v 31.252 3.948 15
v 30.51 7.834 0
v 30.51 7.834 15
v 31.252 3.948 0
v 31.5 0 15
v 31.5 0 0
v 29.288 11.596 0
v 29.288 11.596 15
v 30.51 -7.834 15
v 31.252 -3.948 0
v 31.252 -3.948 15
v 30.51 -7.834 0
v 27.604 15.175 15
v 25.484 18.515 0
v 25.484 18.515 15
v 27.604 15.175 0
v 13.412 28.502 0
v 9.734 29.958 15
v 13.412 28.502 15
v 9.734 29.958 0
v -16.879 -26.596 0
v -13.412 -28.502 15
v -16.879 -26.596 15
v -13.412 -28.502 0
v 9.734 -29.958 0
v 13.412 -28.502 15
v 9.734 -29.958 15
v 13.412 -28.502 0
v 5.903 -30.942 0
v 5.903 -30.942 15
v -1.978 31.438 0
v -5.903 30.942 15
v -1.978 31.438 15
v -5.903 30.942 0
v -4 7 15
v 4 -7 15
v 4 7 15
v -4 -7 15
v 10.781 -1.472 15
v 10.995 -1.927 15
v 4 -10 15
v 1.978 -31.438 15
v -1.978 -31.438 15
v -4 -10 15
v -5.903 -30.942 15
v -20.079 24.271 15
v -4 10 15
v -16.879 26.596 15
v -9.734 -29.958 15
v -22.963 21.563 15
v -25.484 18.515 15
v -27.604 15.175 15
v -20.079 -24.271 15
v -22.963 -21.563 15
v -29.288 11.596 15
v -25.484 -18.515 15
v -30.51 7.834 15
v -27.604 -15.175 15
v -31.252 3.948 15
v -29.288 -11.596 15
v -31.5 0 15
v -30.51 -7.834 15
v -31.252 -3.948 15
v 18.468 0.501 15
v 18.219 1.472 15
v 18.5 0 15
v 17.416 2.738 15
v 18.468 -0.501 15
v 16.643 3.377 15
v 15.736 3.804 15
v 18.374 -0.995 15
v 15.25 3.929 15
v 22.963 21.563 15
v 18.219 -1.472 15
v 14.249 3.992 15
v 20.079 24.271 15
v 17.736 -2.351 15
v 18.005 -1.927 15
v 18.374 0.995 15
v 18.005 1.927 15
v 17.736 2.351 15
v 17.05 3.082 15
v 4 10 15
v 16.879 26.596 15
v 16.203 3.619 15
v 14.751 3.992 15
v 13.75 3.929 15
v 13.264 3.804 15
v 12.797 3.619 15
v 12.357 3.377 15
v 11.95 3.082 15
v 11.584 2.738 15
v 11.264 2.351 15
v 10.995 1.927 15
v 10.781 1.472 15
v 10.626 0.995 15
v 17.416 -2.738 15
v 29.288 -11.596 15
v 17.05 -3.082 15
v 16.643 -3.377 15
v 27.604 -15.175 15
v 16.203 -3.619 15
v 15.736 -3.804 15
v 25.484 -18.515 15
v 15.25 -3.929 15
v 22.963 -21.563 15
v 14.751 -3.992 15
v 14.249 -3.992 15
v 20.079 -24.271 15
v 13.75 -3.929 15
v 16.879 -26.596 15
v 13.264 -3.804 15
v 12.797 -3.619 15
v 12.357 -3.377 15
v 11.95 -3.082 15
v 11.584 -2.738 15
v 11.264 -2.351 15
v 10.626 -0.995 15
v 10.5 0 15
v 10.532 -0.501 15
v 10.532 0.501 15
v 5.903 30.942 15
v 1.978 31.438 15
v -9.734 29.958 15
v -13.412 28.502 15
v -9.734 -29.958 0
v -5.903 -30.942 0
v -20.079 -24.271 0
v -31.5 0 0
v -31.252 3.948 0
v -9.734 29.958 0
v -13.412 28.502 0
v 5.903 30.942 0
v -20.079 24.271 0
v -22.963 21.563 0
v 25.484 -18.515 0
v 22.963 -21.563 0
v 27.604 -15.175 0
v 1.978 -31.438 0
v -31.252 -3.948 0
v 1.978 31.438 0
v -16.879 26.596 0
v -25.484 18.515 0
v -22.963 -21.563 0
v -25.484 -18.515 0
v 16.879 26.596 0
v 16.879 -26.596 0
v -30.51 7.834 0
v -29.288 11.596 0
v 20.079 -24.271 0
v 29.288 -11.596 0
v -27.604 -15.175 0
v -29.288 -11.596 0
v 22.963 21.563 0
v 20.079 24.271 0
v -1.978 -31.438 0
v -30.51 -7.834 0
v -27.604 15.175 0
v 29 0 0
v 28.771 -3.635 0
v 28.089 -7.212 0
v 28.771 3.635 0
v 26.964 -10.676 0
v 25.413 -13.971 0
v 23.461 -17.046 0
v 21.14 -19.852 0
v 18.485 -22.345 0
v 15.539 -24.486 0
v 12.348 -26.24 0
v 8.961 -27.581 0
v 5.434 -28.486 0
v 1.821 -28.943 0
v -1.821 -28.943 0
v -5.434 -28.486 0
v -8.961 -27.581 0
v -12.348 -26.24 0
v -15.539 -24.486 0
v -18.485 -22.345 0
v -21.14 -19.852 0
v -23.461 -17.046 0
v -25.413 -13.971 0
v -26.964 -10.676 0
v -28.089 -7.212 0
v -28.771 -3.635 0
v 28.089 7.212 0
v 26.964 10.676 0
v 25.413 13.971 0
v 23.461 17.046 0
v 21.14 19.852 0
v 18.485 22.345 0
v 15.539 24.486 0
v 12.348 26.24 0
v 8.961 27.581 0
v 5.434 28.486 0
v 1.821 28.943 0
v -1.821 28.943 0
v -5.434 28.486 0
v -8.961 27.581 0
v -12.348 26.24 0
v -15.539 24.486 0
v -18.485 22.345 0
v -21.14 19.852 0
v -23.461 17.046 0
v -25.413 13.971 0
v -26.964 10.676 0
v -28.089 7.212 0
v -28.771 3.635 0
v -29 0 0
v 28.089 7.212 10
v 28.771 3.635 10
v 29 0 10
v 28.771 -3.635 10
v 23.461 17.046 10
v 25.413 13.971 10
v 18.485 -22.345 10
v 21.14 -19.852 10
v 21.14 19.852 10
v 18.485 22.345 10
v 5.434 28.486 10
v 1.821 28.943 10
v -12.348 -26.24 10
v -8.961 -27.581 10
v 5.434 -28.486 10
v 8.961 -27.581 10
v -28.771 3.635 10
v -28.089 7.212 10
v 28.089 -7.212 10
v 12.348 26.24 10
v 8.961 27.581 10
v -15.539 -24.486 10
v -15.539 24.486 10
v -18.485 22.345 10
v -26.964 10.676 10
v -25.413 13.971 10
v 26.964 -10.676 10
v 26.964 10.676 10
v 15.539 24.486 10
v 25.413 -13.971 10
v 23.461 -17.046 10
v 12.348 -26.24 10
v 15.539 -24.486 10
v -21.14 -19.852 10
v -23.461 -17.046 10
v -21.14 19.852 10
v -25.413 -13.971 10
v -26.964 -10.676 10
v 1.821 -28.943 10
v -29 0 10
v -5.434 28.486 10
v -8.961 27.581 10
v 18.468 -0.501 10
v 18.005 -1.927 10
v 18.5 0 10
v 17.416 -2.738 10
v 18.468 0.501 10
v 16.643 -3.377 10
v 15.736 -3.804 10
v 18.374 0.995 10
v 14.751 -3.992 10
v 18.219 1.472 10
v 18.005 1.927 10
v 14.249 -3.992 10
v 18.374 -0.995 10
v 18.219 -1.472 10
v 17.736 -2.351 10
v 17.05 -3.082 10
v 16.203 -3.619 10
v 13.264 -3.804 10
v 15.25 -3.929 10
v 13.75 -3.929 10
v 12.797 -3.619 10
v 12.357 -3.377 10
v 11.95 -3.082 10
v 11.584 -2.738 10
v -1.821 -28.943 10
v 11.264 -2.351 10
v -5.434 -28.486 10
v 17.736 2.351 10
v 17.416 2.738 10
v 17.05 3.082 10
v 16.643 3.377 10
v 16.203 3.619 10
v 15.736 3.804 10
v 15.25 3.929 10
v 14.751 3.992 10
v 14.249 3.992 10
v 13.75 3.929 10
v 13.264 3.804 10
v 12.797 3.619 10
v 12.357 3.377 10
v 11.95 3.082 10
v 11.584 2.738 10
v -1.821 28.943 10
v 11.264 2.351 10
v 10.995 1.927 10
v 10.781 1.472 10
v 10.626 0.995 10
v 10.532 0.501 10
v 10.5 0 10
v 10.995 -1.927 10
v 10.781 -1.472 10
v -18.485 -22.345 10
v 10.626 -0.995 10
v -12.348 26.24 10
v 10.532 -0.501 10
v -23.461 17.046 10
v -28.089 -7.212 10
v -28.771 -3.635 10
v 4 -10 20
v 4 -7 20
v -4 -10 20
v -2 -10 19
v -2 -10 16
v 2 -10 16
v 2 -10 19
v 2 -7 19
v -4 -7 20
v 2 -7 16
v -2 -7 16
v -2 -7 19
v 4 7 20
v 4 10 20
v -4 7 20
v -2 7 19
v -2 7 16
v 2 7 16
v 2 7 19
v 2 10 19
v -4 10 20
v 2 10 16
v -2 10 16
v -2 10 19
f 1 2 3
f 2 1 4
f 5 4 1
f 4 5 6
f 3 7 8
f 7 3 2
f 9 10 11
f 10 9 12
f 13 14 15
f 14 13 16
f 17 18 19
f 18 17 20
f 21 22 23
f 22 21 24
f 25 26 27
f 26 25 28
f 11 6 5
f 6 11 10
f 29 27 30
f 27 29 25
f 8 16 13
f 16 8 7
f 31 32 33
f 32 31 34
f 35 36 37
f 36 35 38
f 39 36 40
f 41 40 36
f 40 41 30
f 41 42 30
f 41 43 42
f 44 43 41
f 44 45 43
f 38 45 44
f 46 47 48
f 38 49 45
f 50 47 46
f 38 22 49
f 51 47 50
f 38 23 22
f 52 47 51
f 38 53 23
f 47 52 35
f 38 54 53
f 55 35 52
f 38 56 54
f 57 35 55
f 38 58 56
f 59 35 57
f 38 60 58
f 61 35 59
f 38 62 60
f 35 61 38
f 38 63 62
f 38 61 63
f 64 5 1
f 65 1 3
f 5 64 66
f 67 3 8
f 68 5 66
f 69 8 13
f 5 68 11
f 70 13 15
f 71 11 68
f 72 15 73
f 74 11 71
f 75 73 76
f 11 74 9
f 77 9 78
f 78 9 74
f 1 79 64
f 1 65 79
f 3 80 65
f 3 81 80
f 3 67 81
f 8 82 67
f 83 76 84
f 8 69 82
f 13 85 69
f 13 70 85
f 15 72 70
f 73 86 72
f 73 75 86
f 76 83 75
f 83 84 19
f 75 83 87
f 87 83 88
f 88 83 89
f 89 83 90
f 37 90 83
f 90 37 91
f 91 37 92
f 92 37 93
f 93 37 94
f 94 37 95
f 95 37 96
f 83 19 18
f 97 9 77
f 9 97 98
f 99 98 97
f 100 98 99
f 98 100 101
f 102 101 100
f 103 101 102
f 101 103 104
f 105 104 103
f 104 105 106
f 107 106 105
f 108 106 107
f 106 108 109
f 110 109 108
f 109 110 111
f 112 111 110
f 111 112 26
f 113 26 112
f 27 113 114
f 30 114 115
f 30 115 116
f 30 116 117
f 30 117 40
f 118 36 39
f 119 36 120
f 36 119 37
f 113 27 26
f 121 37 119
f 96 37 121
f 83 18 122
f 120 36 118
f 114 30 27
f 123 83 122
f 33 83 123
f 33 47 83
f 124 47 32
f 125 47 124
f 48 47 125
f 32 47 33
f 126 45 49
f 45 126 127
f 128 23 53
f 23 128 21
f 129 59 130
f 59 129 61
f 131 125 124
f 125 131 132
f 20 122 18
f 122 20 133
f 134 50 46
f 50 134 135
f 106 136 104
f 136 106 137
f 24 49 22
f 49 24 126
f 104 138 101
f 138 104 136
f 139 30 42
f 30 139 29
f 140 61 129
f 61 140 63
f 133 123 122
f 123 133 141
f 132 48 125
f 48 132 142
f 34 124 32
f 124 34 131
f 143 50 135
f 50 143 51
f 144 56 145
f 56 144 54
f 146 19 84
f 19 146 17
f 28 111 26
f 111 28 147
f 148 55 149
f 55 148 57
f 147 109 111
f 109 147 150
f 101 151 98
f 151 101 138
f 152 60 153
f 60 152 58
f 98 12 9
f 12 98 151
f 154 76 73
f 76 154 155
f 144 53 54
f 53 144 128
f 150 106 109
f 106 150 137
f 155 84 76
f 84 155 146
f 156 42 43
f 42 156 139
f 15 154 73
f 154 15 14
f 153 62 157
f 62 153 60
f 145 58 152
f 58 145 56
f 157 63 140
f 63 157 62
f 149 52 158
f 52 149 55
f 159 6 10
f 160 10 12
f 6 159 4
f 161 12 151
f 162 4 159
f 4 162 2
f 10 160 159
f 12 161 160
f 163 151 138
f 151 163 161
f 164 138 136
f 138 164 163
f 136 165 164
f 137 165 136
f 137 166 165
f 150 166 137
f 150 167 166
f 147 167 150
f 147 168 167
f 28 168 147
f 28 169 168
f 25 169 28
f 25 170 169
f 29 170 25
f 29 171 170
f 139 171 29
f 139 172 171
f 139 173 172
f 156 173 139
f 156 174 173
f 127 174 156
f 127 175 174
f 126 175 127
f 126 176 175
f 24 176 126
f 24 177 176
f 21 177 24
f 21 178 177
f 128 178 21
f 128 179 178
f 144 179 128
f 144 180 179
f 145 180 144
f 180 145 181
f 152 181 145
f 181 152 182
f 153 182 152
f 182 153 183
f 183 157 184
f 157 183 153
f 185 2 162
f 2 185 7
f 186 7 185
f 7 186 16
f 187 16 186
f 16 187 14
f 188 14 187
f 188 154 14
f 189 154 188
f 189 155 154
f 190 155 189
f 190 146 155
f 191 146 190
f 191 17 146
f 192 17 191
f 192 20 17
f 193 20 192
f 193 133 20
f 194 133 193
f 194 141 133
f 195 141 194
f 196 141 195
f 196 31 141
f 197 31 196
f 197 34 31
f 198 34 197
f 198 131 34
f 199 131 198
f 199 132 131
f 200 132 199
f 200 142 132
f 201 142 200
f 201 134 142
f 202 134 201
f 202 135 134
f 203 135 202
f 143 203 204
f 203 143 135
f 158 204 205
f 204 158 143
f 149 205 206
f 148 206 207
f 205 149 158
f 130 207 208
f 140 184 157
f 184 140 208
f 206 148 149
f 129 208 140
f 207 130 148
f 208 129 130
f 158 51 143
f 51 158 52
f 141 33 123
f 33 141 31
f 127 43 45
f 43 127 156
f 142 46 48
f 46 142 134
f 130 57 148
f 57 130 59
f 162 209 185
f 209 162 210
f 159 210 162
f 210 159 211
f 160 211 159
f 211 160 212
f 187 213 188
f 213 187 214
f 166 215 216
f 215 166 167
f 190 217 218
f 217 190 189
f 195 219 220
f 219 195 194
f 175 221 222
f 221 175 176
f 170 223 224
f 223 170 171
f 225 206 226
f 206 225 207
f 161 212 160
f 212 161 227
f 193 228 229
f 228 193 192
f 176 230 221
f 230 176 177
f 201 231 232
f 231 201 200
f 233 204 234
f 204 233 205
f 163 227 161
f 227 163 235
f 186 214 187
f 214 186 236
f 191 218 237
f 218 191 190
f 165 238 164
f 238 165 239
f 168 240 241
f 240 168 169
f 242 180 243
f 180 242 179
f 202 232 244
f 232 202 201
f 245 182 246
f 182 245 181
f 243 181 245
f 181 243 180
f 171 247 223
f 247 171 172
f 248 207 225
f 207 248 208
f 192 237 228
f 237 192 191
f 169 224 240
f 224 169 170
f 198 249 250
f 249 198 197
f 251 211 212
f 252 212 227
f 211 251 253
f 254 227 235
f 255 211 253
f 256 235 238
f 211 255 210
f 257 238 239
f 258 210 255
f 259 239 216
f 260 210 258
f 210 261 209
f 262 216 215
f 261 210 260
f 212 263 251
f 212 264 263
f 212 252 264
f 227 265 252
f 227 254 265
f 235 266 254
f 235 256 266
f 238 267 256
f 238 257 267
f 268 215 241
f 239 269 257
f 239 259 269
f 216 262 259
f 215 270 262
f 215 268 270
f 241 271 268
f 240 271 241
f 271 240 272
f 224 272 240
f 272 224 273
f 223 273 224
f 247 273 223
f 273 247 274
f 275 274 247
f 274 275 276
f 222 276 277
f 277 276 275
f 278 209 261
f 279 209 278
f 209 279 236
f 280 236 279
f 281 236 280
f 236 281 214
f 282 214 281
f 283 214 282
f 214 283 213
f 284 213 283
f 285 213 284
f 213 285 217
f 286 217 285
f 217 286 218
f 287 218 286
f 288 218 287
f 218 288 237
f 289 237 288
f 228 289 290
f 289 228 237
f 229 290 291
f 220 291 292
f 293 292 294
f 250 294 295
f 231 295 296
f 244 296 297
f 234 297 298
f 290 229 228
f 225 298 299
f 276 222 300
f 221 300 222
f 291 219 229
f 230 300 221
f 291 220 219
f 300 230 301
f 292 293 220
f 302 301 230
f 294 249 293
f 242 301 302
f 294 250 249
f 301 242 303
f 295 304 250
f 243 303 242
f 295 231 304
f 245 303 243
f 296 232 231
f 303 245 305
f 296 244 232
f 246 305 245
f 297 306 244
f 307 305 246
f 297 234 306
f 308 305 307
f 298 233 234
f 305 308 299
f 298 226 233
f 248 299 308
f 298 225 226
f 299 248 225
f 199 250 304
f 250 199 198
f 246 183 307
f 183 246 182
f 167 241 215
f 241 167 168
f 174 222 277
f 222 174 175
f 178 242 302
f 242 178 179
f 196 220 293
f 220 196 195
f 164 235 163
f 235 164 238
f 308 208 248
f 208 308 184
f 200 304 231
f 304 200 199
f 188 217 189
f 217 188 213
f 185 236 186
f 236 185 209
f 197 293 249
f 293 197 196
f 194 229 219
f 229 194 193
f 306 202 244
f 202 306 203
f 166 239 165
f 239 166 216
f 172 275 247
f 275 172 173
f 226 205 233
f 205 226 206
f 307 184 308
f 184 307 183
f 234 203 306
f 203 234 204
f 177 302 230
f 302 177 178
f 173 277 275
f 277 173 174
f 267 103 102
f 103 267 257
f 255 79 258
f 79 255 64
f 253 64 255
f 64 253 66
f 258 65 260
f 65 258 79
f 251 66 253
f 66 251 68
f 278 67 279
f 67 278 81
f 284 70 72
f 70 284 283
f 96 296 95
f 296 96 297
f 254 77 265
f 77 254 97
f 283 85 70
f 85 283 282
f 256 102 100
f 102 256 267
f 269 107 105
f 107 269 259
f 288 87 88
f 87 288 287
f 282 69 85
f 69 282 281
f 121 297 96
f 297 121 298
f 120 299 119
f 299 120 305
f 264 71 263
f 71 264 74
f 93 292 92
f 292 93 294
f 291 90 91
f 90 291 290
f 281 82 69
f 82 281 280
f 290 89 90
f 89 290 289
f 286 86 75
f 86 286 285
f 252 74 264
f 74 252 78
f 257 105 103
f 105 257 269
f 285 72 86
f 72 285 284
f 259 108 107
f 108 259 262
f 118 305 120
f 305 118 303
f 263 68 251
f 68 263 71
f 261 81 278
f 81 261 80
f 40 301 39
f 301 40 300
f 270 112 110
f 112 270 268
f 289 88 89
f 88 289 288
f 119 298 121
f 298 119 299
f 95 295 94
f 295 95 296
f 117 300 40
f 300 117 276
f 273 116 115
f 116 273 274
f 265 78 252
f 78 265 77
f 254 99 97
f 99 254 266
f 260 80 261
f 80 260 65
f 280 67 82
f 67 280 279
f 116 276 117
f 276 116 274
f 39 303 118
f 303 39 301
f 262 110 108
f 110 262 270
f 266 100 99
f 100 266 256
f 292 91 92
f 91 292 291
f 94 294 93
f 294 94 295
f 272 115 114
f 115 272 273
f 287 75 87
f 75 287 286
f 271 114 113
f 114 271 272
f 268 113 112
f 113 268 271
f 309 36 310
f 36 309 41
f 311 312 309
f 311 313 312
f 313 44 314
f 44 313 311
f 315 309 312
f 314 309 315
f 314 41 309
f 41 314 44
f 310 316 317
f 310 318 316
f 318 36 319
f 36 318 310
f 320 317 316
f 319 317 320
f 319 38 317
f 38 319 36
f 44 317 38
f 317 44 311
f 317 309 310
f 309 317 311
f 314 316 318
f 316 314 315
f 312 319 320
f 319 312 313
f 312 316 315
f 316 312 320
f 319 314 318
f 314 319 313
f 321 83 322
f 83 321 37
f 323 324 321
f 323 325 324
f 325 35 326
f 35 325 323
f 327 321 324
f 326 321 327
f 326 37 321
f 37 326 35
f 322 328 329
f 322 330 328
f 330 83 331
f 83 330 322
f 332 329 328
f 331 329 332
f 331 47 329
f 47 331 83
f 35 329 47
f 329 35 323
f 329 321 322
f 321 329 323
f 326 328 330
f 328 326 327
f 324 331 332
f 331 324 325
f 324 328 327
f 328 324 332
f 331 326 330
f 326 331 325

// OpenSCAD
Circle_radius_inside = 29;
Circle_height = 15;

Circle_radius = (Circle_radius_inside + 2.5);
//Circle_width



bracket_x = 8;
bracket_y = 5;
bracket_z = 3;
bracket_hole_x = 4;
bracket_hole_y = 3;
bracket_hole_z = 3;

//main body
module main_body(){
   color("red") {cylinder(h=Circle_height, r=Circle_radius, $fn=50);}
   ;}
module circle_inside(){

   color("green") {cylinder(h=Circle_height-5, r=Circle_radius_inside, $fn=50);}
   ;}   
module bracket(){
   difference(){
	  cube([bracket_x,bracket_y,bracket_z]);
	  translate([(bracket_x-bracket_hole_x)/2,(bracket_y-bracket_hole_y)/2,(bracket_z-bracket_hole_z)/2]){
		 cube([bracket_hole_x,bracket_hole_y,bracket_hole_z]);}
	  }
   }

module wire_hole(){
    wire_hole_radius = 4;
    translate([Circle_radius_inside/2,0,Circle_height-5]){
        color("pink")cylinder(h=5, r=wire_hole_radius, $fn=50);
        
    }
}

module main(){
    
    difference(){
        difference(){
            //main body
            main_body();
            //cube inside
            circle_inside();
        }
        wire_hole();
    }
	  
   //bracket left
   translate([-bracket_x/2,-7,Circle_height]){
	  rotate([90,0,0])     
        bracket();}
   //bracket right
   translate([-bracket_x/2,10,Circle_height]){
	  rotate([90,0,0])     
        bracket();}
	  
   
}



main();
//wire_hole();

//main_body();
//circle_inside();
